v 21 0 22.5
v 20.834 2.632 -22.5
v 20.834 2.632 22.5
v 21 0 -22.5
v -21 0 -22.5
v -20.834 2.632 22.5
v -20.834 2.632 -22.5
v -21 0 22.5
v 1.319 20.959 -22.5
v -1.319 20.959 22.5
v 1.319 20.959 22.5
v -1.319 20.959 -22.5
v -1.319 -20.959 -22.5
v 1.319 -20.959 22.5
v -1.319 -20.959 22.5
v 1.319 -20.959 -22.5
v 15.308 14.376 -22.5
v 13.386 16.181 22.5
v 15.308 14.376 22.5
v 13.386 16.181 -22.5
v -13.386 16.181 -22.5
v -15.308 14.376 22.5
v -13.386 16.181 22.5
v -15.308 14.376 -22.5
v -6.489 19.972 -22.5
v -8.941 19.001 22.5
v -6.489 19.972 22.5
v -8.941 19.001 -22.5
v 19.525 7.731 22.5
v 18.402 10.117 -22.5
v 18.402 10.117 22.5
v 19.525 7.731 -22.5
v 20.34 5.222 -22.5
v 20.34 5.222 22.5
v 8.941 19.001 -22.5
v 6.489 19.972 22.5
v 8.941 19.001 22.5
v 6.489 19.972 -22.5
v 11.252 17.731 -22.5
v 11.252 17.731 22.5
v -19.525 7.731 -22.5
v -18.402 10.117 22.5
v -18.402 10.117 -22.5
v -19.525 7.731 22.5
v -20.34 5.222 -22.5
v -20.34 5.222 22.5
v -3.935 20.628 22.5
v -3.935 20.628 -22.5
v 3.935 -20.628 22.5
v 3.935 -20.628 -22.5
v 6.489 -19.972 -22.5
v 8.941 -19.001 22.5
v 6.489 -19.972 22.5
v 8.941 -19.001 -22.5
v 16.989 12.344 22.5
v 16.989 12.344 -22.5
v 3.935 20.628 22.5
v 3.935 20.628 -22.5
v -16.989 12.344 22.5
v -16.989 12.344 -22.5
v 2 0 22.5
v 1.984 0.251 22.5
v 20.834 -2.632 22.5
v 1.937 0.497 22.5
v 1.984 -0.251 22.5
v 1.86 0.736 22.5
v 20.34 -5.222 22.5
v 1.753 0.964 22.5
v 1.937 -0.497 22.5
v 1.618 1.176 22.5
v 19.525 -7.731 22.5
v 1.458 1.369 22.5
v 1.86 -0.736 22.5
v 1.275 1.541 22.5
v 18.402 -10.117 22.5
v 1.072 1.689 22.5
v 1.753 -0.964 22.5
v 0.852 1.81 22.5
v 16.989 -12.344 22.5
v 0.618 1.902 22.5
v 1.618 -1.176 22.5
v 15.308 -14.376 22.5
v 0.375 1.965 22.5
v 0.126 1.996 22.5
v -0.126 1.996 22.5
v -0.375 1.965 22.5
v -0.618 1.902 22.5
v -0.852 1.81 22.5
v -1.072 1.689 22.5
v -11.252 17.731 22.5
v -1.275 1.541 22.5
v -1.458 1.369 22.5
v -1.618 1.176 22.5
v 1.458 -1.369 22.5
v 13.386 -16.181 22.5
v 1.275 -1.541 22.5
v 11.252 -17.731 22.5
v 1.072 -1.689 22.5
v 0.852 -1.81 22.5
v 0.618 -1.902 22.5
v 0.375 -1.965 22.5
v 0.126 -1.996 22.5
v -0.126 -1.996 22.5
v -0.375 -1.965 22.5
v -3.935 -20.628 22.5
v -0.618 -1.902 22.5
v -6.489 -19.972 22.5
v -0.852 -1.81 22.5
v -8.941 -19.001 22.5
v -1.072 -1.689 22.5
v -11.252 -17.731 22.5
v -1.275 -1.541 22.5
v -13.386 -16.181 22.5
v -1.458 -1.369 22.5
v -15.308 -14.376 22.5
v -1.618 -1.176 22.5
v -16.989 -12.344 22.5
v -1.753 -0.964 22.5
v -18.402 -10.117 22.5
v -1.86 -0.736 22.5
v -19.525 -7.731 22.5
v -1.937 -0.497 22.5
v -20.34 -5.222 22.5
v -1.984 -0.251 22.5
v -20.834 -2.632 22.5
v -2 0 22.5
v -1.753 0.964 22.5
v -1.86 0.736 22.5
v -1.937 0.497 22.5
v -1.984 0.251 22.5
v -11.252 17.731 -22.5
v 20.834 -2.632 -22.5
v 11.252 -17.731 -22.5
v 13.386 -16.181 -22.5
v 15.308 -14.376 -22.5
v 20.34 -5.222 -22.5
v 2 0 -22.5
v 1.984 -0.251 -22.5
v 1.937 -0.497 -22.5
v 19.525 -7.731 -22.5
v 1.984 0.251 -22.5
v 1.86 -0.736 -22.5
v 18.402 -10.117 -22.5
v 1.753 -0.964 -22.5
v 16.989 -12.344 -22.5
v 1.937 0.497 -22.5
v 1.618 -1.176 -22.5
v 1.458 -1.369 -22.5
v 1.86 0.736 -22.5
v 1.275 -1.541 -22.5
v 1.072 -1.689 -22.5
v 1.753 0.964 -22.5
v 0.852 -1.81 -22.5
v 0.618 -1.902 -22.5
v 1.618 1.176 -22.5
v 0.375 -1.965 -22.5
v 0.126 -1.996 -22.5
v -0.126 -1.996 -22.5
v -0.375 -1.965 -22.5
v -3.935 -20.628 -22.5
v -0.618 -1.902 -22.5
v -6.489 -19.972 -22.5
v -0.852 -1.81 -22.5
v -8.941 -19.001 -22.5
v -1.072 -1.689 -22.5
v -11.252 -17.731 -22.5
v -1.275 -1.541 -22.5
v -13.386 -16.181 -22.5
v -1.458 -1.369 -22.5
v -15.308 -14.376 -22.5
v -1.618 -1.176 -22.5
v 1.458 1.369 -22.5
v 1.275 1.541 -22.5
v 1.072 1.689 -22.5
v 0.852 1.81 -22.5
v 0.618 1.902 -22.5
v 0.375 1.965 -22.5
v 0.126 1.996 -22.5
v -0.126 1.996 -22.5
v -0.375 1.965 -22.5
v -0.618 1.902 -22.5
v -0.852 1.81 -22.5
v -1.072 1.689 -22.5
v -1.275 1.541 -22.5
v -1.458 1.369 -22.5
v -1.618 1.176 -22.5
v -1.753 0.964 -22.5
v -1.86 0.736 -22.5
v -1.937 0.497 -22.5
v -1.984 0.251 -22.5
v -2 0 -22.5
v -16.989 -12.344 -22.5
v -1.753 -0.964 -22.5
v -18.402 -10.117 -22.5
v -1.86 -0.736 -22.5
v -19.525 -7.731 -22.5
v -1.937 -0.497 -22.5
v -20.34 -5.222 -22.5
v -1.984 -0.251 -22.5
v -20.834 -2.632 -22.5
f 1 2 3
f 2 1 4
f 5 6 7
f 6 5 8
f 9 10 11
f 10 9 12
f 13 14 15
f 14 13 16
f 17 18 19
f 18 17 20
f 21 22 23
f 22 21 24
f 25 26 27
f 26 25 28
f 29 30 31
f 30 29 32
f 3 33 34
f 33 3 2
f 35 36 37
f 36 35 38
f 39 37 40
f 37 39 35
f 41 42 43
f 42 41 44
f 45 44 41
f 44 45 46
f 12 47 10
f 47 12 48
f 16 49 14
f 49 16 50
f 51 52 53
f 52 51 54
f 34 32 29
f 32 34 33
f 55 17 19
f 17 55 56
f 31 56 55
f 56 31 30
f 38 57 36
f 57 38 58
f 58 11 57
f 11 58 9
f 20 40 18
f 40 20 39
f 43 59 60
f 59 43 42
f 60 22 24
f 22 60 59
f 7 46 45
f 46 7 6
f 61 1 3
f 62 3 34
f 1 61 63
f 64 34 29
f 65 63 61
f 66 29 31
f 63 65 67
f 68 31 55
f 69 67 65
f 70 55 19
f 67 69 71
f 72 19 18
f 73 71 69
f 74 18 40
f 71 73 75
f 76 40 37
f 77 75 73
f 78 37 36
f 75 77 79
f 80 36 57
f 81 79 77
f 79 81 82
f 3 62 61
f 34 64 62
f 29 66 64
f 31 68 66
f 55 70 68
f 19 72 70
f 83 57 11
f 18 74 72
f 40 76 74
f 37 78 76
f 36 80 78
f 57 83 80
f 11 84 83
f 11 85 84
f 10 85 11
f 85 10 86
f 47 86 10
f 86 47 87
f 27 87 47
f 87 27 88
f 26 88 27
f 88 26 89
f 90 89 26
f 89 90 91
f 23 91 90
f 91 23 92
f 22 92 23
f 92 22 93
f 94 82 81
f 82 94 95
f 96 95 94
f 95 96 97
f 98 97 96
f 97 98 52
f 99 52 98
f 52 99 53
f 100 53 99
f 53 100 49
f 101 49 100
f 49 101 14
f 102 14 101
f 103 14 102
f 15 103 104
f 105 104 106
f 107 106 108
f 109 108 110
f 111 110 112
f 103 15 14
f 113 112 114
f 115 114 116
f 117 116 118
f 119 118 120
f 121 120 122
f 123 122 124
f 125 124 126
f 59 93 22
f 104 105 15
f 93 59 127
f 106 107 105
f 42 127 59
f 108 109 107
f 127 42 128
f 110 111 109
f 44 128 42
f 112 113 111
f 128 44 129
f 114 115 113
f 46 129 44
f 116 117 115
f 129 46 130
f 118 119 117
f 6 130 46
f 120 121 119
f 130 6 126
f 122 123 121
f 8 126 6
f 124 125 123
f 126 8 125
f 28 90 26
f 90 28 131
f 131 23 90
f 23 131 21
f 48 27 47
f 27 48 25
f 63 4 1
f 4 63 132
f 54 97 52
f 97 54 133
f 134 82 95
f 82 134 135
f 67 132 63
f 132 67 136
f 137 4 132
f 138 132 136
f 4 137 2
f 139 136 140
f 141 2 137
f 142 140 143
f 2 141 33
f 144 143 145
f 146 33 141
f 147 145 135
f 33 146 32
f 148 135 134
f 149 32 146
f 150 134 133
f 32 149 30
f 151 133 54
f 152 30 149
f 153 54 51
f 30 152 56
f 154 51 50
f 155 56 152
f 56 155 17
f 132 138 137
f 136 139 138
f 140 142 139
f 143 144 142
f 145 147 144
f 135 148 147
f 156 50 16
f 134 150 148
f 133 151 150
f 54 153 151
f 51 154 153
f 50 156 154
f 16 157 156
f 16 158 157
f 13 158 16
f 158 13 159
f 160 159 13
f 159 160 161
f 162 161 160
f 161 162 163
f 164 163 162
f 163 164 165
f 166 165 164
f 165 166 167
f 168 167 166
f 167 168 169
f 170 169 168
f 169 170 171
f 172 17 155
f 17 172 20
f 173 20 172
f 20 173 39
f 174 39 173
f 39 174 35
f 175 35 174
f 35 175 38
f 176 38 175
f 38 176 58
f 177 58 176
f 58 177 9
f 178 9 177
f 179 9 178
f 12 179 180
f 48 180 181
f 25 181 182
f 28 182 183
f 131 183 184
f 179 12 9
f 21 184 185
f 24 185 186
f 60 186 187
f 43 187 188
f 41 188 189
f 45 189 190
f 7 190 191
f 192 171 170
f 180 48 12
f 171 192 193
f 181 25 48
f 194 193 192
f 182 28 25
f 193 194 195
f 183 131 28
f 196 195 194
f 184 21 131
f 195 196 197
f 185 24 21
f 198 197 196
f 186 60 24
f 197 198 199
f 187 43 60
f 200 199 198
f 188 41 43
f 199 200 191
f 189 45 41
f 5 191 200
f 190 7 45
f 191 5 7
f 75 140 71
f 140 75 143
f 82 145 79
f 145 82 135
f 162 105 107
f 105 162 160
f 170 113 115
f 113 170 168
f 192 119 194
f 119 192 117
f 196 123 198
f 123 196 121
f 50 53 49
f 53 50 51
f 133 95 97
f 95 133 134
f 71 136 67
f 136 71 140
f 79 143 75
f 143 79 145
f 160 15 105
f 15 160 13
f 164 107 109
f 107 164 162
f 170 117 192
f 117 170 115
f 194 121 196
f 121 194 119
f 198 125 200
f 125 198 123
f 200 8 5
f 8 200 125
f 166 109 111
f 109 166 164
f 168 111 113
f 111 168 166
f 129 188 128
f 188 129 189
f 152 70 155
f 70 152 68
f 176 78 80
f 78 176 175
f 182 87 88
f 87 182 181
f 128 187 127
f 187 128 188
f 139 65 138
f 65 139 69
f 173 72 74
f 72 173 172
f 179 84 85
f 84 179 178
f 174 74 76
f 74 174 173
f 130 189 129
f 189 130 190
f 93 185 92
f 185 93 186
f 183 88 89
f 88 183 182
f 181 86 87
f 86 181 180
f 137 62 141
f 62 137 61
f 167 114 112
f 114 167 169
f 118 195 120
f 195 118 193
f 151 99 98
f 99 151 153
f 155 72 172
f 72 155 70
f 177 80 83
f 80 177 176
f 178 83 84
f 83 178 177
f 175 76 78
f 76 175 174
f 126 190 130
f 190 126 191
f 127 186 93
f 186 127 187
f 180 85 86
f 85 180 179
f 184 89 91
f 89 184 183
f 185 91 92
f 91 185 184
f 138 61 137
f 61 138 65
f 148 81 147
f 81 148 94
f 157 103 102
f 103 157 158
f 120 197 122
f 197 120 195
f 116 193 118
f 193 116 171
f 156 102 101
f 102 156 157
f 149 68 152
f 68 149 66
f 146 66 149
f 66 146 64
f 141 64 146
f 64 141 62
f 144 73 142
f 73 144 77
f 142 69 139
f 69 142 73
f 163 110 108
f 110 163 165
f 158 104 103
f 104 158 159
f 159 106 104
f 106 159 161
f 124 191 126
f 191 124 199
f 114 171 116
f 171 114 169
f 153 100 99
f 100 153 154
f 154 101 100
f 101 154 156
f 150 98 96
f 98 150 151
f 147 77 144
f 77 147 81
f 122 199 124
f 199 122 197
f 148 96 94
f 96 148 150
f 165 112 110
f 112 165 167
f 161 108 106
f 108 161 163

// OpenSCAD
$fn = 50;


difference() {
	union() {
		translate(v = [0, 0, -22.5000000000]) {
			cylinder(h = 45, r = 21.0000000000);
		}
	}
	union() {
		translate(v = [0, 0, -100.0000000000]) {
			cylinder(h = 200, r = 2);
		}
	}
}
